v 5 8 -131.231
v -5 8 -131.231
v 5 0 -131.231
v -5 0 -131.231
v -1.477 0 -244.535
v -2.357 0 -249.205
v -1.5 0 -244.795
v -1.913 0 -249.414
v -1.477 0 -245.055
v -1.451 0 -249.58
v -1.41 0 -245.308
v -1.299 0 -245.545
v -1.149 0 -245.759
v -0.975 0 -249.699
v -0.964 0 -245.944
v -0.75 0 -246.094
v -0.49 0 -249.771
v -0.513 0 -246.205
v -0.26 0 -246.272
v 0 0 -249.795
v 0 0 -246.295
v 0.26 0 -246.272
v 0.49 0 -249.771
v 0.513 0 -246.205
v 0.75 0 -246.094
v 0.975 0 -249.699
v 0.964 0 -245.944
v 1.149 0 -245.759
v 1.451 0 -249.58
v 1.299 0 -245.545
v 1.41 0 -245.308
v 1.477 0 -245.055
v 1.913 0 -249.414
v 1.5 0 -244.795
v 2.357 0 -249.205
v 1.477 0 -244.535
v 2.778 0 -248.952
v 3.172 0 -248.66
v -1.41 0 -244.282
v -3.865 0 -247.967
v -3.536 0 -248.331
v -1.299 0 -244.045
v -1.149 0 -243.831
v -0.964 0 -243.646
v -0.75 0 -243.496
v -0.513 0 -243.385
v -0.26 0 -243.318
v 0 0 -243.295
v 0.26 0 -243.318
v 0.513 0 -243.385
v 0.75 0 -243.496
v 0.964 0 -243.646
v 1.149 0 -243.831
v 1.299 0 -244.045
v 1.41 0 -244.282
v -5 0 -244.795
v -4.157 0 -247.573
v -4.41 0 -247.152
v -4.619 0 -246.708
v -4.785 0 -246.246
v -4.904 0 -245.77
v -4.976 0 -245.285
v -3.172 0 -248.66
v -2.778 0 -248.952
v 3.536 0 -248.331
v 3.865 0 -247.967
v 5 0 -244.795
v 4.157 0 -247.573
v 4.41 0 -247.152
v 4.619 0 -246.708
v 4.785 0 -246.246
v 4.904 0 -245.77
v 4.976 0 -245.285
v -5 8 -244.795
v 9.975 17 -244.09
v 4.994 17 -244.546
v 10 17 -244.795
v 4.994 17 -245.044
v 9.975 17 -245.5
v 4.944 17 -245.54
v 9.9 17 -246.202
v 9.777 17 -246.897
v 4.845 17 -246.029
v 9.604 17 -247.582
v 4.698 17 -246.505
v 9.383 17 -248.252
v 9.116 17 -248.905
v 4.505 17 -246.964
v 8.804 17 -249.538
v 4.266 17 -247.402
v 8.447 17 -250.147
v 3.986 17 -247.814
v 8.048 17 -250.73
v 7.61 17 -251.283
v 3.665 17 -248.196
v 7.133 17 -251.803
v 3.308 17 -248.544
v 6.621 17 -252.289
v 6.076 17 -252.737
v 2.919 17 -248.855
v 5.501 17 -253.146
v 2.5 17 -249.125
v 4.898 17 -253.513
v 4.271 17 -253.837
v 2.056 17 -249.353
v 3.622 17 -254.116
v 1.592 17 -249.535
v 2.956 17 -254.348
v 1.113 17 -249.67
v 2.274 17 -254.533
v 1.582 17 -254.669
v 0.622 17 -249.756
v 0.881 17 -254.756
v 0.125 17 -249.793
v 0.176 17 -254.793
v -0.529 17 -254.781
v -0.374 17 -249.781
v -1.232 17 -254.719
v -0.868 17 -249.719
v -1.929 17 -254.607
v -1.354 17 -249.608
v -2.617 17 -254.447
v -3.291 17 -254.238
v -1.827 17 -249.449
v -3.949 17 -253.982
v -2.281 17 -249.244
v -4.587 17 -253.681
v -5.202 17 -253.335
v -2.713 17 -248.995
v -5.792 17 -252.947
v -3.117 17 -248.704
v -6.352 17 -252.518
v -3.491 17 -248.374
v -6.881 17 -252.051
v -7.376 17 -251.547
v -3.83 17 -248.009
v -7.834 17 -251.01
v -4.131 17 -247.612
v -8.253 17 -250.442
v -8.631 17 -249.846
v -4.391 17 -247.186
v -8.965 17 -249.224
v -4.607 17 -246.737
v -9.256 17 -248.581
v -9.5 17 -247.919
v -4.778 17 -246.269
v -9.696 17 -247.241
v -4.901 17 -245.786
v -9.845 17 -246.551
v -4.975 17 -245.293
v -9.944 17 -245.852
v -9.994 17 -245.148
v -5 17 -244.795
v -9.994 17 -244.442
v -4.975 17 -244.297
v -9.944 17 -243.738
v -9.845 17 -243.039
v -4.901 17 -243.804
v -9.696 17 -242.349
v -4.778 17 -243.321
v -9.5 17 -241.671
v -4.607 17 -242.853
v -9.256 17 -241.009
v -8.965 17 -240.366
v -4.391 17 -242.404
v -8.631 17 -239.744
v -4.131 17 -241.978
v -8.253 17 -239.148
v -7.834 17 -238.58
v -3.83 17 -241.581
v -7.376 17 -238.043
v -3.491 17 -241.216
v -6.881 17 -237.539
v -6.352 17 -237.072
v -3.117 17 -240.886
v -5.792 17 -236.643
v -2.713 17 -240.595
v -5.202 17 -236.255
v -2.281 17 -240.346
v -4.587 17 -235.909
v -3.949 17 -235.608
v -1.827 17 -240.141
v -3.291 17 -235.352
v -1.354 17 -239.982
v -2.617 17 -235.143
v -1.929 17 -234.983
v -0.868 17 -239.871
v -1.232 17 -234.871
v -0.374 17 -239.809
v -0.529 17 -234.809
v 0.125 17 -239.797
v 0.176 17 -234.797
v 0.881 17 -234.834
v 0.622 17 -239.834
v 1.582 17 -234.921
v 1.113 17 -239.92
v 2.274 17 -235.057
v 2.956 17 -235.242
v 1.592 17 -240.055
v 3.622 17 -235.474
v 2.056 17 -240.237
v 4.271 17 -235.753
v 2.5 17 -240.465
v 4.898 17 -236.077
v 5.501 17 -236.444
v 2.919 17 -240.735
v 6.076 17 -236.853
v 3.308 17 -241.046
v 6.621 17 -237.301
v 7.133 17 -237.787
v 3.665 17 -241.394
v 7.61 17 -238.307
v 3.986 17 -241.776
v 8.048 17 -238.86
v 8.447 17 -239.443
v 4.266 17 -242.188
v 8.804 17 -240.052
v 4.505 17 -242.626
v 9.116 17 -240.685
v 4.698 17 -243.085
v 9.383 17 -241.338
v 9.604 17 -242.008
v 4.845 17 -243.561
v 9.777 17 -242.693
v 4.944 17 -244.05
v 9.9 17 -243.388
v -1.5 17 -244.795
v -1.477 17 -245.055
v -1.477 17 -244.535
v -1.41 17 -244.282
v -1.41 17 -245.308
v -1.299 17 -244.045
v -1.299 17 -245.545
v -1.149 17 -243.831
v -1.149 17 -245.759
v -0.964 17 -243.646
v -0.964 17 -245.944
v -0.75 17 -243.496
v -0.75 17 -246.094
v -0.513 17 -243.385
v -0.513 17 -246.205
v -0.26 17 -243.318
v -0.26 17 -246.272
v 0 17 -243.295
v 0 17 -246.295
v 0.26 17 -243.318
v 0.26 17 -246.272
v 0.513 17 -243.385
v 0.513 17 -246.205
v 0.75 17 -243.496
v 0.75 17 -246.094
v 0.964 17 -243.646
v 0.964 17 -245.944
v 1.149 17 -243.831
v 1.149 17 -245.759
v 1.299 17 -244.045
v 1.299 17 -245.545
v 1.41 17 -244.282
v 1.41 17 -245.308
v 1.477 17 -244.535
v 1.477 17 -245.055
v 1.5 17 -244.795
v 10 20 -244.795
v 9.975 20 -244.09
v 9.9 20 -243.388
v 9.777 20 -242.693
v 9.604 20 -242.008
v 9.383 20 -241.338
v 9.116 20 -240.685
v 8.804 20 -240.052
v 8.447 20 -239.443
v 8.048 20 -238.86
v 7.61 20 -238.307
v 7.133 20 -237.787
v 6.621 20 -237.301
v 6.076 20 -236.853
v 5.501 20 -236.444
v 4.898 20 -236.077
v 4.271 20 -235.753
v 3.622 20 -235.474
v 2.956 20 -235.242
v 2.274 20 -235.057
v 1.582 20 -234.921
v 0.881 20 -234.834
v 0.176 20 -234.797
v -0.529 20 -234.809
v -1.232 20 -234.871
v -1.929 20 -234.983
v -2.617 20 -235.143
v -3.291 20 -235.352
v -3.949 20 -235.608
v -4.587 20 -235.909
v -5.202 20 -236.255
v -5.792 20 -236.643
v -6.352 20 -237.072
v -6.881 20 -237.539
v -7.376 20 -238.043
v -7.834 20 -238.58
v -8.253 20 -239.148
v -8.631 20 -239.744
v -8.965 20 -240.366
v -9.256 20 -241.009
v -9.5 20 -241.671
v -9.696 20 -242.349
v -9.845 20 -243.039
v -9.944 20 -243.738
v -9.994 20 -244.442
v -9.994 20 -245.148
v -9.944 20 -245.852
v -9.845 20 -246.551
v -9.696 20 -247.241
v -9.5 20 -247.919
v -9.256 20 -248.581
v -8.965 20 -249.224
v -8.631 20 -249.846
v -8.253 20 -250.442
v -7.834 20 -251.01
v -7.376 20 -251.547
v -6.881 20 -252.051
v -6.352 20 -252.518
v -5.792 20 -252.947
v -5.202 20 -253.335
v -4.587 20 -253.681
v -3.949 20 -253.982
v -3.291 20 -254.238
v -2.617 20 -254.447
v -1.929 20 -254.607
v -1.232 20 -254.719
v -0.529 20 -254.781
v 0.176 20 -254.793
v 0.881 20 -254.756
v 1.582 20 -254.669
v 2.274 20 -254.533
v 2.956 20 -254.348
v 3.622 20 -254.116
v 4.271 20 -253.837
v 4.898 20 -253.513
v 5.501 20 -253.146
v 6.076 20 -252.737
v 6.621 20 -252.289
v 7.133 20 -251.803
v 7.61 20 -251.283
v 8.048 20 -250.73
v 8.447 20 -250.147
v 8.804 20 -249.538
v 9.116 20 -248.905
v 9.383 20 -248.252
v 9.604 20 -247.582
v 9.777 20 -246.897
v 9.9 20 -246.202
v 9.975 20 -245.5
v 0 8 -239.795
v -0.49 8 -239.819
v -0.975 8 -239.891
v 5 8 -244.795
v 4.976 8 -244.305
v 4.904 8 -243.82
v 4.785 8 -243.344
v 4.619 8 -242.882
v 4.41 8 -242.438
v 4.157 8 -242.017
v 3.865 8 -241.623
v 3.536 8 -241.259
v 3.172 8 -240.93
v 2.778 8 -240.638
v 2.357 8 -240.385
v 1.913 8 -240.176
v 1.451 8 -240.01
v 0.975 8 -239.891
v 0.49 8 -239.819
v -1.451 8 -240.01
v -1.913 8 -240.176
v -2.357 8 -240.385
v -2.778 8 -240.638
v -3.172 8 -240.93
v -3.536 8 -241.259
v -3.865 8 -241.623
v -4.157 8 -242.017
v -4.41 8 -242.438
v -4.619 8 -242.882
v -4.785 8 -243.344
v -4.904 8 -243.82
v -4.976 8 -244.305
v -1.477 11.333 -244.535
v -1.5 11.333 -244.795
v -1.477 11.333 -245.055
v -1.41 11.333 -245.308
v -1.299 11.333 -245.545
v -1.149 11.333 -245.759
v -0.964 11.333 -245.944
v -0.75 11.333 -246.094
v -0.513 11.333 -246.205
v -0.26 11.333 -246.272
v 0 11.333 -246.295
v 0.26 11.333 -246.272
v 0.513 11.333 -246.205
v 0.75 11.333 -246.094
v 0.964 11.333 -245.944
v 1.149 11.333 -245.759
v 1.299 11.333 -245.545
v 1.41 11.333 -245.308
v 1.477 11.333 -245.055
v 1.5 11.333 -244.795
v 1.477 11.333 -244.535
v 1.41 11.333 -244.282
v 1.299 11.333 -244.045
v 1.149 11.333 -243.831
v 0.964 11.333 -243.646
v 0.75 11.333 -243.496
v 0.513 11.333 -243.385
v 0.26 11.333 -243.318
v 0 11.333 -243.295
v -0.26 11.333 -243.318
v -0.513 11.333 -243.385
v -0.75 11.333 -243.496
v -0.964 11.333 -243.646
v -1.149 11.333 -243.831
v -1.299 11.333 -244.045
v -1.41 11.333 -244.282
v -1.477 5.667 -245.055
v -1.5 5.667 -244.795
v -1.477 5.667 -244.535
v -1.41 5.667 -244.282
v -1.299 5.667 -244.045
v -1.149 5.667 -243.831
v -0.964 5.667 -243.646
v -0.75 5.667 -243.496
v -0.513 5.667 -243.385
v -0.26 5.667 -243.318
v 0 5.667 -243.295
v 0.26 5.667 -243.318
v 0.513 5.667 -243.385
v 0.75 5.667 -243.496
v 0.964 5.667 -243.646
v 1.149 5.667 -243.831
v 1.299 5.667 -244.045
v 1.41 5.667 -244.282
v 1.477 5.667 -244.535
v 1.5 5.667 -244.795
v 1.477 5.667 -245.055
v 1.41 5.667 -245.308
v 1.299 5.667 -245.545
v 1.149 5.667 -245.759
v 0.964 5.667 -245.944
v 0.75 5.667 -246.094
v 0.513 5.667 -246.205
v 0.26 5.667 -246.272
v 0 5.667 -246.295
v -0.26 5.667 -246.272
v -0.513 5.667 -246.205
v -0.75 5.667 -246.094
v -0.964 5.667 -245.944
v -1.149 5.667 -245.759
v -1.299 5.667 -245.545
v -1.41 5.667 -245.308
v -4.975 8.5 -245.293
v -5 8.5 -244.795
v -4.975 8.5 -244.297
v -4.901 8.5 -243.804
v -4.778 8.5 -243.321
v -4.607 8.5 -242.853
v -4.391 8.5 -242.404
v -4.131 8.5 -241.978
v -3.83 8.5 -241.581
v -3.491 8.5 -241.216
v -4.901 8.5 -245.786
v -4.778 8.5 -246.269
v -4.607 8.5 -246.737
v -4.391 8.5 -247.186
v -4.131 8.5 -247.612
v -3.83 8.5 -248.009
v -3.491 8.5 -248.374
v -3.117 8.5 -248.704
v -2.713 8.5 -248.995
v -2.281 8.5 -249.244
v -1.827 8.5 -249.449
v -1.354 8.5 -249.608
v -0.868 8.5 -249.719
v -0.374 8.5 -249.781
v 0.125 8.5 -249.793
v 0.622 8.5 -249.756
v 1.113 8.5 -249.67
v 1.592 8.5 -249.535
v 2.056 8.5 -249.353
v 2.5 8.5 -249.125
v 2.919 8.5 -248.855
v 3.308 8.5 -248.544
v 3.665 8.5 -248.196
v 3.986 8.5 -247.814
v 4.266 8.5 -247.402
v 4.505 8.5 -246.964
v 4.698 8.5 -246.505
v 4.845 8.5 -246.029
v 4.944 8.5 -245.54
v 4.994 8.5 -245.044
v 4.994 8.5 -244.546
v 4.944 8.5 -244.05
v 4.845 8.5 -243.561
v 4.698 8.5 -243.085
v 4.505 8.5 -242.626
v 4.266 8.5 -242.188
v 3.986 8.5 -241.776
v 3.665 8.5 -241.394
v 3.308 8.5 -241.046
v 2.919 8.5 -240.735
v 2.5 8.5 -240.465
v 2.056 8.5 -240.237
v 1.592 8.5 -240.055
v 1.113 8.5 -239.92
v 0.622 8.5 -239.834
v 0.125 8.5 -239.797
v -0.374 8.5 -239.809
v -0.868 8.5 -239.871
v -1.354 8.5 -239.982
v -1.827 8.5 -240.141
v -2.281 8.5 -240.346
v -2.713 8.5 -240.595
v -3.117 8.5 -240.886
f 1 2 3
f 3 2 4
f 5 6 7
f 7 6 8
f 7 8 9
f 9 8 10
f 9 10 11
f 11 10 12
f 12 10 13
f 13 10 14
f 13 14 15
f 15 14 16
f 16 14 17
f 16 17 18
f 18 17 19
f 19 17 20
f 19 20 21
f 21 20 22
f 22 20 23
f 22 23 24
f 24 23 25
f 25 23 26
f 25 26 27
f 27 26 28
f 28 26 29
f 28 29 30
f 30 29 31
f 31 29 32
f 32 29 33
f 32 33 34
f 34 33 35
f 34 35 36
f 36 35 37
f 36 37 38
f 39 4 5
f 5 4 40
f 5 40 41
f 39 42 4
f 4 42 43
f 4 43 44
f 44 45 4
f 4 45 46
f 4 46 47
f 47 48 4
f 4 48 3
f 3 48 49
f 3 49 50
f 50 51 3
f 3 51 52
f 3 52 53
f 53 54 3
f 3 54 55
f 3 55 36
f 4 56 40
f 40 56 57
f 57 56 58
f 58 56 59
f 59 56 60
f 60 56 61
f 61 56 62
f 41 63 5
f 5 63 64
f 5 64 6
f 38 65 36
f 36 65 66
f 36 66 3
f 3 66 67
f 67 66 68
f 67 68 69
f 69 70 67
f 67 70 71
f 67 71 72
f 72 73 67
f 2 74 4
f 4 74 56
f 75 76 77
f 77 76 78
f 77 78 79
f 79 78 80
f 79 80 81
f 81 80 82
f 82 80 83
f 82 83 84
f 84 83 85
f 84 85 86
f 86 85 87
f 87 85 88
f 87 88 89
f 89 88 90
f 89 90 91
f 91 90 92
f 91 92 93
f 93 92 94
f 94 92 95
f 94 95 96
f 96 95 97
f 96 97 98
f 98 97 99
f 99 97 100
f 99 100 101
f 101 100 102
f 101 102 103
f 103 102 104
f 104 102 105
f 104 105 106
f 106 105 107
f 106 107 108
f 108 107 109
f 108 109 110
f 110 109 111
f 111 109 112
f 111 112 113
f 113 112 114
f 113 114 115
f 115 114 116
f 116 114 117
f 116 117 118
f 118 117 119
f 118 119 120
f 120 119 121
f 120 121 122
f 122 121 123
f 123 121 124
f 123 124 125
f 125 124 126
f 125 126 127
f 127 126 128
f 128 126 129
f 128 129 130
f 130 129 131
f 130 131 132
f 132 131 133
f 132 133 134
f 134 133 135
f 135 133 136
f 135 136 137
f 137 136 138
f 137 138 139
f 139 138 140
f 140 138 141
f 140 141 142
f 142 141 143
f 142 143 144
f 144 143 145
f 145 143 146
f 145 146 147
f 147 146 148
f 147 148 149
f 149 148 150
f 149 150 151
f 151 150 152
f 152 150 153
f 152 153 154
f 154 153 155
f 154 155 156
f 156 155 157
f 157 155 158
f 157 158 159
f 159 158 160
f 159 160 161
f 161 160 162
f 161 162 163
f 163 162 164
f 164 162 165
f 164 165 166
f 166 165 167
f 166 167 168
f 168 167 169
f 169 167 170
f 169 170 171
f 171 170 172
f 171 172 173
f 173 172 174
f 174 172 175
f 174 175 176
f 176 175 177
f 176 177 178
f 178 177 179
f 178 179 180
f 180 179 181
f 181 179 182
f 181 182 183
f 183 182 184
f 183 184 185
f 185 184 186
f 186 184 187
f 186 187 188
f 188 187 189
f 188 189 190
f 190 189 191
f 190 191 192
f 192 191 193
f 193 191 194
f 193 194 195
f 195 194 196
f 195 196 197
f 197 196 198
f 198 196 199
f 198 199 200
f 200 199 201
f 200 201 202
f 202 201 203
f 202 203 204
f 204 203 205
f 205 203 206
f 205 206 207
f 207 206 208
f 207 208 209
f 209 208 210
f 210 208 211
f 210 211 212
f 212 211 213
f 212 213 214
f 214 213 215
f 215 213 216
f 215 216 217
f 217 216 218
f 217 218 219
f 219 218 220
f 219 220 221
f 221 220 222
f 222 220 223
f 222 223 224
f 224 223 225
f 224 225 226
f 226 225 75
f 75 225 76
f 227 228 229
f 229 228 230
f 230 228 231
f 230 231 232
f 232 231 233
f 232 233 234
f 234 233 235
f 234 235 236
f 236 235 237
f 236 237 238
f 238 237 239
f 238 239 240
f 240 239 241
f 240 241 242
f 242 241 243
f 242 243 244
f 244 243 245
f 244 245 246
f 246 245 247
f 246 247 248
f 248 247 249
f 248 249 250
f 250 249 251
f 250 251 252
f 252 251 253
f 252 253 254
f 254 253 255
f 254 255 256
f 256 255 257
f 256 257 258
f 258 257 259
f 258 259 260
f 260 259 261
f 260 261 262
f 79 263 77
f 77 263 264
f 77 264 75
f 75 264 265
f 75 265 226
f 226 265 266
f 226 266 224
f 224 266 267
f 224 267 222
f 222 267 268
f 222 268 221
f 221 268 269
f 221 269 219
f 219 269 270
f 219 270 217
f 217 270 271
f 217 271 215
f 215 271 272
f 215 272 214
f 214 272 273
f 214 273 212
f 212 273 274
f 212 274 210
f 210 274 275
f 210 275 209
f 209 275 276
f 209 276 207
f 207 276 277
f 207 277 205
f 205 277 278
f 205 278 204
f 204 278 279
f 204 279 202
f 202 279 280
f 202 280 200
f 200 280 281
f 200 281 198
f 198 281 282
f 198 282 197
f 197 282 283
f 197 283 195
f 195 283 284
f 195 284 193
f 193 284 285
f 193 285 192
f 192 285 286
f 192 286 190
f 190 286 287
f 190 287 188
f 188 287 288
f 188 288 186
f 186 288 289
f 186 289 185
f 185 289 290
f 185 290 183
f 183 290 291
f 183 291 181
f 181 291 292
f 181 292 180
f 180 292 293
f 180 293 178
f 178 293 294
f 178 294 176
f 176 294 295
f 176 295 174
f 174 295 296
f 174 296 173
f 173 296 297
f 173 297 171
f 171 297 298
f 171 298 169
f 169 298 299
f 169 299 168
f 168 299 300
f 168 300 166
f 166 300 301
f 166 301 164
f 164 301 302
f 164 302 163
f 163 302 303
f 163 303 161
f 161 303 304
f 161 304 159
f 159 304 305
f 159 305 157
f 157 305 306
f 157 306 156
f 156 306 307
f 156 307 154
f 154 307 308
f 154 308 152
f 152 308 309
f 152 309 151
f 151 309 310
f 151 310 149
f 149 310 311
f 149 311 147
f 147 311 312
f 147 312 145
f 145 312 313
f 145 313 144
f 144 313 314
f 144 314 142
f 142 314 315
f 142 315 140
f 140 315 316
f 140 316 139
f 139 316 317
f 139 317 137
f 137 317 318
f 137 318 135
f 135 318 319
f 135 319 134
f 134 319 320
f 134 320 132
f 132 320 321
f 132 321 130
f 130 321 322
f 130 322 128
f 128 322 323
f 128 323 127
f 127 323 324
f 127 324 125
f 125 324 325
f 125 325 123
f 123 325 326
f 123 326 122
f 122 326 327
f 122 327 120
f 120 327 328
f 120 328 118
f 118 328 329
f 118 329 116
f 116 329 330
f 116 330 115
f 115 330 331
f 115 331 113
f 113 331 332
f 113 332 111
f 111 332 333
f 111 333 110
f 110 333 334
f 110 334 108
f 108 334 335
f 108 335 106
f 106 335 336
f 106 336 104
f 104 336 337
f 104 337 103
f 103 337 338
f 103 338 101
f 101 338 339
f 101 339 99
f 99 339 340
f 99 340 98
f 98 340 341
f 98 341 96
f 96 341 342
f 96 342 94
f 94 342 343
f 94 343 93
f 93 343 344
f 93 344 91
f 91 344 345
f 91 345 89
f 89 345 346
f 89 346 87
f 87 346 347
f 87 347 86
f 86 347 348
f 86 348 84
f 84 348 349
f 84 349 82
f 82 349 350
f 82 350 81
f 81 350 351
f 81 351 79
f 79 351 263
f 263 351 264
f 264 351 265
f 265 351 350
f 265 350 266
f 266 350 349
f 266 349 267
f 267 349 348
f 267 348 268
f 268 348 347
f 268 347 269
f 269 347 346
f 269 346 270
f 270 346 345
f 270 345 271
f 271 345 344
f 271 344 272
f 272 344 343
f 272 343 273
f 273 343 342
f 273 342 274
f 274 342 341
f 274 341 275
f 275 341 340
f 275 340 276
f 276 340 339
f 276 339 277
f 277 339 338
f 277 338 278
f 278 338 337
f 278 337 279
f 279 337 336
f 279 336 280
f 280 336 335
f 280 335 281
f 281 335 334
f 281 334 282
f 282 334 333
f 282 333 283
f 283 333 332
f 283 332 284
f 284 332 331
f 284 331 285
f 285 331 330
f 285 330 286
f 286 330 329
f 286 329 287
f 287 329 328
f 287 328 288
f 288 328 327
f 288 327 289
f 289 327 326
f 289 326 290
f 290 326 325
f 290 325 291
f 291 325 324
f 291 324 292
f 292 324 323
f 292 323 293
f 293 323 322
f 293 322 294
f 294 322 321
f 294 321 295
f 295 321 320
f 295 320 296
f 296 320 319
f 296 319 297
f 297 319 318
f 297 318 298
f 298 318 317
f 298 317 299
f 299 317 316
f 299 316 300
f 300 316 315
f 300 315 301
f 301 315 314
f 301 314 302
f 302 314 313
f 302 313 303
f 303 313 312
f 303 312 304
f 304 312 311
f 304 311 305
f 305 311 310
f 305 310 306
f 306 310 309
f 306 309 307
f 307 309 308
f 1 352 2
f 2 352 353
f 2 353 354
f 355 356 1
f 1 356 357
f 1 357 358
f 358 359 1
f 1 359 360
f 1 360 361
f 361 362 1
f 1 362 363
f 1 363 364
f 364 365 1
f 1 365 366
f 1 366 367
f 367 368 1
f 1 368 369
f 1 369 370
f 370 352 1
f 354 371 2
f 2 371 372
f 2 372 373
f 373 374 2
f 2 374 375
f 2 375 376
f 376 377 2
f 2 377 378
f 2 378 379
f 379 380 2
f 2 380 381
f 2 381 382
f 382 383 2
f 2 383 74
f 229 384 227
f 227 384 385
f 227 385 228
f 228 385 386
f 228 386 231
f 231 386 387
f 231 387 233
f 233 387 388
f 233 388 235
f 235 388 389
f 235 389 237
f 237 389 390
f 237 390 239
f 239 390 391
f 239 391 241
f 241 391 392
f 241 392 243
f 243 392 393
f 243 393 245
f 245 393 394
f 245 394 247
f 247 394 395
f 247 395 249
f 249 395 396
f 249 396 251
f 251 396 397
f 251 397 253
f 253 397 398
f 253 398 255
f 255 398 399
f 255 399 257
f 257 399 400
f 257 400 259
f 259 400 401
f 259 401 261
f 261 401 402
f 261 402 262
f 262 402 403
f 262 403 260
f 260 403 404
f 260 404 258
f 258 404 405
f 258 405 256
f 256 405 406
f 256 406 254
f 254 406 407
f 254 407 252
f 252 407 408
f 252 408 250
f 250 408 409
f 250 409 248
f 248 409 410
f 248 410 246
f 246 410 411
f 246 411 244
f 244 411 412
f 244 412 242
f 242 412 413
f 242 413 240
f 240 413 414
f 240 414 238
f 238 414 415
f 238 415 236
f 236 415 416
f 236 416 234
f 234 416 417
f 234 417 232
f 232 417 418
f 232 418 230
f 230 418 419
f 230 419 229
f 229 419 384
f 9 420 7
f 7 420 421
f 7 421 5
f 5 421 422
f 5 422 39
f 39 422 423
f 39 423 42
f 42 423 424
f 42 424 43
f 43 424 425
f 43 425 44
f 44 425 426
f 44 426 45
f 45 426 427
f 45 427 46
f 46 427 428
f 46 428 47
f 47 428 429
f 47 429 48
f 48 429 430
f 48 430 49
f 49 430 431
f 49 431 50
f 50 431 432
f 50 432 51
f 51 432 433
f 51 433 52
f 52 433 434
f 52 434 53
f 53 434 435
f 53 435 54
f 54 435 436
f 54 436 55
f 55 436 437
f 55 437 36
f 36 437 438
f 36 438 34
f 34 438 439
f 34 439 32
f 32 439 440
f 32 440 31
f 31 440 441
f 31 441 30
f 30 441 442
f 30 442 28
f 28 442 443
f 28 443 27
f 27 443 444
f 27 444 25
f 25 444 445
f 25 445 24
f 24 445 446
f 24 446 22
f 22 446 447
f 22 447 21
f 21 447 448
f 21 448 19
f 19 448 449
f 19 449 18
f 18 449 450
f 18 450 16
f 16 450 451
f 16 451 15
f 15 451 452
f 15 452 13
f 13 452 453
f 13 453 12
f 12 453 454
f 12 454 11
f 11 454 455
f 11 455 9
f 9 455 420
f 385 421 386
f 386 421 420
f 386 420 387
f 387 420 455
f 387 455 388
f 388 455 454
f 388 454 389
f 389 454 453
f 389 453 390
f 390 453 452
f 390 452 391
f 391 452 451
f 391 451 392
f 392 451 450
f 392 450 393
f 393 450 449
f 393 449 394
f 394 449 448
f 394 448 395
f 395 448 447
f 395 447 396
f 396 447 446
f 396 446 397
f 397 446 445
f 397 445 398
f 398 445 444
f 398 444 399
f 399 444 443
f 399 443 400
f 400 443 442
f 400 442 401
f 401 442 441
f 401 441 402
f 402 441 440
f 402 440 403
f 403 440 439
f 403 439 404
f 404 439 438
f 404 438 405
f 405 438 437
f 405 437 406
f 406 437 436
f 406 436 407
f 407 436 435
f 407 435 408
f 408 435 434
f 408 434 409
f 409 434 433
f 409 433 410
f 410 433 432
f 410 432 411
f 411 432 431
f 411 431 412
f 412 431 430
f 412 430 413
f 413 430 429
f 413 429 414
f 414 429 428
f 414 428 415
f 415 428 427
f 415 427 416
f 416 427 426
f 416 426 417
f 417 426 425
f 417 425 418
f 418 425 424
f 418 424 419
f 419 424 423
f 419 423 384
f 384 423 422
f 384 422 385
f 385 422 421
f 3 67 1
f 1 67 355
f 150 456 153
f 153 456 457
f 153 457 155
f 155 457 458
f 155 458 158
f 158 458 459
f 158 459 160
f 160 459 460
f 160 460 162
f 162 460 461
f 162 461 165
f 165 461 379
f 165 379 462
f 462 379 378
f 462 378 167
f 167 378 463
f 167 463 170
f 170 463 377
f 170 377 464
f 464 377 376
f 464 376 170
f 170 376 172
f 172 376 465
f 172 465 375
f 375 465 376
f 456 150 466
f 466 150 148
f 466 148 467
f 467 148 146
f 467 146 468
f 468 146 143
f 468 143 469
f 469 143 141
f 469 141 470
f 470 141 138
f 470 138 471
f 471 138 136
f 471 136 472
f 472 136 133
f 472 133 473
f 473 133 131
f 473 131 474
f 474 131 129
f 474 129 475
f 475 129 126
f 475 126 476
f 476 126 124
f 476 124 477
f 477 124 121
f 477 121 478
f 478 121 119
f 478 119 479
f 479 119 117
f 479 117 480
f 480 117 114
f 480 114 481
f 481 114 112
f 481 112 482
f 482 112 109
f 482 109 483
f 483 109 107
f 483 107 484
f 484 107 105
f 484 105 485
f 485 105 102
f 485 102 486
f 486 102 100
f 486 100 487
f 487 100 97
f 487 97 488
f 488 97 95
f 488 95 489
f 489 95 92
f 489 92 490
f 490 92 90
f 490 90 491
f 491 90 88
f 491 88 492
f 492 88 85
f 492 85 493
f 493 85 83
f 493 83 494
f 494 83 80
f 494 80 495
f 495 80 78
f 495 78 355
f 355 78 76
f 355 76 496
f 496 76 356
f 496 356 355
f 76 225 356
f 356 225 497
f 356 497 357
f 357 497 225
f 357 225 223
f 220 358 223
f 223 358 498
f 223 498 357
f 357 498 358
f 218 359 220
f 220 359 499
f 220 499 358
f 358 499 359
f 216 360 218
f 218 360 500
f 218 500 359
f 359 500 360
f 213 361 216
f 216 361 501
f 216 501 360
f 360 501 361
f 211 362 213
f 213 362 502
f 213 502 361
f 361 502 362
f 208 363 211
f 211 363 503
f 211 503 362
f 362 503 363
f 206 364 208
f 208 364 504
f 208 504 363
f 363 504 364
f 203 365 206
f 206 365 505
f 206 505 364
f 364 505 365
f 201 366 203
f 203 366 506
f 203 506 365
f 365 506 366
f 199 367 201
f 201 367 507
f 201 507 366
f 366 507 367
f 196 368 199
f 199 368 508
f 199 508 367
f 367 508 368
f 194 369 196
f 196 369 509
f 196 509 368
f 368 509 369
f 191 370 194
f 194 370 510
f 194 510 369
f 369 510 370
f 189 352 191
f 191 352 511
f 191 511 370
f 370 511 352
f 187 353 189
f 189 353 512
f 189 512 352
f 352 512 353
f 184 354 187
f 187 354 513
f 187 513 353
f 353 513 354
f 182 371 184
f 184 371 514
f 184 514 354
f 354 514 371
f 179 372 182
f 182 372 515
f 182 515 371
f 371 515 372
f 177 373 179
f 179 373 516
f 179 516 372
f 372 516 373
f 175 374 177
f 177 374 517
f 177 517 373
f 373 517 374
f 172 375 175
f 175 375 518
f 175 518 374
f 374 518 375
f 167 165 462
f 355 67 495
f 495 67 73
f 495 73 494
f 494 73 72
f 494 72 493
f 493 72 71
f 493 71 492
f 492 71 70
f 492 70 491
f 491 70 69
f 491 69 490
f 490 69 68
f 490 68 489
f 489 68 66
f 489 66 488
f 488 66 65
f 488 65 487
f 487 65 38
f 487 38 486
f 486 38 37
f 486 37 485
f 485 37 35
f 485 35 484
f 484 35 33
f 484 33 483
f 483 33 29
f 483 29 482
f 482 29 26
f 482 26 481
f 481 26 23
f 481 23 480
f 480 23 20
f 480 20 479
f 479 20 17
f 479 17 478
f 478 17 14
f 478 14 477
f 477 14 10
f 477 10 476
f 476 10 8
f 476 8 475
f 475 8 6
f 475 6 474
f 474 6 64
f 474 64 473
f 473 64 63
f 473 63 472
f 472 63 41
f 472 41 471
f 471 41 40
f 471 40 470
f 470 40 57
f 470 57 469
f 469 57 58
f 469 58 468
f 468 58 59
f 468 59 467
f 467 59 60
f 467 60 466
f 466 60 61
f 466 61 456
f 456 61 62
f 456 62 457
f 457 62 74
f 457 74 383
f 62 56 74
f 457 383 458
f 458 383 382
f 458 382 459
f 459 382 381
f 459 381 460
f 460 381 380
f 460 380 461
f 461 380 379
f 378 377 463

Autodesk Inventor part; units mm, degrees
ref_plane "YZ Plane" through (0, 0, 0) normal (1, 0, 0) x (0, 1, 0)
ref_plane "XZ Plane" through (0, 0, 0) normal (0, 1, 0) x (-1, 0, 0)
ref_plane "XY Plane" through (0, 0, 0) normal (0, 0, 1) x (1, 0, 0)
sketch "Sketch1" plane through (0, 0, 0) normal (0, 1, 0) x (-1, 0, 0)
  line L0 (0, 0) -> (0, -244.795) construction
  line L1 (-5, 0) -> (-5, -244.795)
  line L2 (5, -244.795) -> (5, 0)
  arc A0 (5, 0) -> (-5, 0) centre (0, 0) ccw
  arc A1 (-5, -244.795) -> (5, -244.795) centre (0, -244.795) ccw
  circle A2 centre (0, 0) radius 1.5
  circle A3 centre (0, -244.795) radius 1.5
  point P0 (0, -122.3975)
  dimension "d0" = 244.795
  dimension "d1" = 10
  dimension "d2" = 3
  dimension "d3" = 3
extrude "Extrusion1" add sketch "Sketch1" along normal blind 8
sketch "Sketch2" plane through (0, 8, 0) normal (0, 1, 0) x (1, 0, 0)
  arc A0 (5, 244.795) -> (-5, 244.795) centre (0, 244.795) ccw projected
  line L0 (-5, 244.795) -> (-5, 0) projected
  arc A1 (-5, 0) -> (5, 0) centre (0, 0) ccw projected
  line L1 (5, 0) -> (5, 244.795) projected
  circle A2 centre (0, 244.795) radius 1.5 projected
  circle A3 centre (0, 0) radius 1.5 projected
  circle A4 centre (0, 244.795) radius 5
  point P0 (-5, 244.795)
  dimension "d12" = 10
extrude "Extrusion2" add sketch "Sketch2" along normal blind 12 contours A4 A0
sketch "Sketch3" plane through (0, 0, 0) normal (0, -1, 0) x (1, 0, 0)
  arc A0 (-5, -244.795) -> (5, -244.795) centre (0, -244.795) ccw projected
  line L0 (5, 0) -> (5, -244.795) projected
  arc A1 (5, 0) -> (-5, 0) centre (0, 0) ccw projected
  line L1 (-5, -244.795) -> (-5, 0) projected
  circle A2 centre (0, -244.795) radius 1.5 projected
  circle A3 centre (0, 0) radius 1.5 projected
sketch "Sketch4" plane through (0, 20, -244.795) normal (0, 1, 0) x (1, 0, 0)
  circle A0 centre (0, 0) radius 10
  point P0 (0, -244.795)
  dimension "d15" = 20
extrude "Extrusion3" add sketch "Sketch4" against normal blind 3
sketch "Sketch5" plane through (0, 0, 0) normal (0, -1, 0) x (1, 0, 0)
  line L0 (23.0807, 11.4027) -> (-31.8332, 11.4027)
  line L1 (-31.8332, 11.4027) -> (-31.8332, -131.2308)
  line L2 (-31.8332, -131.2308) -> (23.0807, -131.2308)
  line L3 (23.0807, -131.2308) -> (23.0807, 11.4027)
  line L4 (55.5298, 55.2625) -> (-102.4368, 55.2625)
  line L5 (-102.4368, 55.2625) -> (-102.4368, -369.4288)
  line L6 (-102.4368, -369.4288) -> (55.5298, -369.4288)
  line L7 (55.5298, -369.4288) -> (55.5298, 55.2625)
  point P0 (0, 0)
extrude "Extrusion4" cut sketch "Sketch5" against normal blind 100 contours L3 L2 L1 L0
properties part number "Part_12_p2"
